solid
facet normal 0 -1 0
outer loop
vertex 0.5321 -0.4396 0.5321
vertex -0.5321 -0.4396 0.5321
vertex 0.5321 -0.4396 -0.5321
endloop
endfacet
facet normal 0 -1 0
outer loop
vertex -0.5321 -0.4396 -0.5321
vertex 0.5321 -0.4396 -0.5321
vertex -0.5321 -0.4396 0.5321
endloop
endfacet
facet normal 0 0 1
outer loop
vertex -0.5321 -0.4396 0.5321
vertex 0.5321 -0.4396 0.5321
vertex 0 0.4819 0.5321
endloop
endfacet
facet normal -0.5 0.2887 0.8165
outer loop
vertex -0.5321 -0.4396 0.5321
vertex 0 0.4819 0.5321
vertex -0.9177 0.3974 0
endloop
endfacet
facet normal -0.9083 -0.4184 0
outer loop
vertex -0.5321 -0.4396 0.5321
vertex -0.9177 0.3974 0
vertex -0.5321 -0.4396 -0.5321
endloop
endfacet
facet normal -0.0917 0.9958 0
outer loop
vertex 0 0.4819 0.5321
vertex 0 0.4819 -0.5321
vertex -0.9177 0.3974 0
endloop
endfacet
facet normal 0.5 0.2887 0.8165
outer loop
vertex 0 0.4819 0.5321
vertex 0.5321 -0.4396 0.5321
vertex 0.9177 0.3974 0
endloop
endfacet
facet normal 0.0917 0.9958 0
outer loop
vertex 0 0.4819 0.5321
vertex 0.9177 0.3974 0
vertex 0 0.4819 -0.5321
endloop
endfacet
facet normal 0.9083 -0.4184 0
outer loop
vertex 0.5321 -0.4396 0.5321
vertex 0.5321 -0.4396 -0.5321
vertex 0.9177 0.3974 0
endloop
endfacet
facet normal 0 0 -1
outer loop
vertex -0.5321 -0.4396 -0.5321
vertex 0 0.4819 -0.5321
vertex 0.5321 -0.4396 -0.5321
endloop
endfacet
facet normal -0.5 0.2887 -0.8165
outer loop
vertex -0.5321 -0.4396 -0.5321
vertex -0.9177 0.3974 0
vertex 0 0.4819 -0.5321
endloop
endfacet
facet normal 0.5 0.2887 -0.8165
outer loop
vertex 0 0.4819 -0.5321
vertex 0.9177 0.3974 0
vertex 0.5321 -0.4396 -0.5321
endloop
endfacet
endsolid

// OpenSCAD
polyhedron( points = [[-0.532057204984899, -0.439636606222664, 0.532057204966563], [3.10301751336105e-11, 0.481913505334317, 0.532057204966563], [0.532057204936628, -0.439636606222664, 0.532057204966563], [-0.532057204937124, -0.439636606195081, -0.532057204954964], [3.10323016613842e-11, 0.481913505279154, -0.532057204954964], [0.532057204888857, -0.43963660619508, -0.532057204954964], [-0.917662935458695, 0.397359707173905, -1.74003135084191e-11], [0.917662935493171, 0.397359707048113, -1.73971237167585e-11]], faces = [[0, 3, 5, 2], [0, 2, 1], [0, 1, 6], [0, 6, 3], [1, 4, 6], [1, 2, 7], [1, 7, 4], [2, 5, 7], [3, 4, 5], [3, 6, 4], [4, 7, 5]]);
